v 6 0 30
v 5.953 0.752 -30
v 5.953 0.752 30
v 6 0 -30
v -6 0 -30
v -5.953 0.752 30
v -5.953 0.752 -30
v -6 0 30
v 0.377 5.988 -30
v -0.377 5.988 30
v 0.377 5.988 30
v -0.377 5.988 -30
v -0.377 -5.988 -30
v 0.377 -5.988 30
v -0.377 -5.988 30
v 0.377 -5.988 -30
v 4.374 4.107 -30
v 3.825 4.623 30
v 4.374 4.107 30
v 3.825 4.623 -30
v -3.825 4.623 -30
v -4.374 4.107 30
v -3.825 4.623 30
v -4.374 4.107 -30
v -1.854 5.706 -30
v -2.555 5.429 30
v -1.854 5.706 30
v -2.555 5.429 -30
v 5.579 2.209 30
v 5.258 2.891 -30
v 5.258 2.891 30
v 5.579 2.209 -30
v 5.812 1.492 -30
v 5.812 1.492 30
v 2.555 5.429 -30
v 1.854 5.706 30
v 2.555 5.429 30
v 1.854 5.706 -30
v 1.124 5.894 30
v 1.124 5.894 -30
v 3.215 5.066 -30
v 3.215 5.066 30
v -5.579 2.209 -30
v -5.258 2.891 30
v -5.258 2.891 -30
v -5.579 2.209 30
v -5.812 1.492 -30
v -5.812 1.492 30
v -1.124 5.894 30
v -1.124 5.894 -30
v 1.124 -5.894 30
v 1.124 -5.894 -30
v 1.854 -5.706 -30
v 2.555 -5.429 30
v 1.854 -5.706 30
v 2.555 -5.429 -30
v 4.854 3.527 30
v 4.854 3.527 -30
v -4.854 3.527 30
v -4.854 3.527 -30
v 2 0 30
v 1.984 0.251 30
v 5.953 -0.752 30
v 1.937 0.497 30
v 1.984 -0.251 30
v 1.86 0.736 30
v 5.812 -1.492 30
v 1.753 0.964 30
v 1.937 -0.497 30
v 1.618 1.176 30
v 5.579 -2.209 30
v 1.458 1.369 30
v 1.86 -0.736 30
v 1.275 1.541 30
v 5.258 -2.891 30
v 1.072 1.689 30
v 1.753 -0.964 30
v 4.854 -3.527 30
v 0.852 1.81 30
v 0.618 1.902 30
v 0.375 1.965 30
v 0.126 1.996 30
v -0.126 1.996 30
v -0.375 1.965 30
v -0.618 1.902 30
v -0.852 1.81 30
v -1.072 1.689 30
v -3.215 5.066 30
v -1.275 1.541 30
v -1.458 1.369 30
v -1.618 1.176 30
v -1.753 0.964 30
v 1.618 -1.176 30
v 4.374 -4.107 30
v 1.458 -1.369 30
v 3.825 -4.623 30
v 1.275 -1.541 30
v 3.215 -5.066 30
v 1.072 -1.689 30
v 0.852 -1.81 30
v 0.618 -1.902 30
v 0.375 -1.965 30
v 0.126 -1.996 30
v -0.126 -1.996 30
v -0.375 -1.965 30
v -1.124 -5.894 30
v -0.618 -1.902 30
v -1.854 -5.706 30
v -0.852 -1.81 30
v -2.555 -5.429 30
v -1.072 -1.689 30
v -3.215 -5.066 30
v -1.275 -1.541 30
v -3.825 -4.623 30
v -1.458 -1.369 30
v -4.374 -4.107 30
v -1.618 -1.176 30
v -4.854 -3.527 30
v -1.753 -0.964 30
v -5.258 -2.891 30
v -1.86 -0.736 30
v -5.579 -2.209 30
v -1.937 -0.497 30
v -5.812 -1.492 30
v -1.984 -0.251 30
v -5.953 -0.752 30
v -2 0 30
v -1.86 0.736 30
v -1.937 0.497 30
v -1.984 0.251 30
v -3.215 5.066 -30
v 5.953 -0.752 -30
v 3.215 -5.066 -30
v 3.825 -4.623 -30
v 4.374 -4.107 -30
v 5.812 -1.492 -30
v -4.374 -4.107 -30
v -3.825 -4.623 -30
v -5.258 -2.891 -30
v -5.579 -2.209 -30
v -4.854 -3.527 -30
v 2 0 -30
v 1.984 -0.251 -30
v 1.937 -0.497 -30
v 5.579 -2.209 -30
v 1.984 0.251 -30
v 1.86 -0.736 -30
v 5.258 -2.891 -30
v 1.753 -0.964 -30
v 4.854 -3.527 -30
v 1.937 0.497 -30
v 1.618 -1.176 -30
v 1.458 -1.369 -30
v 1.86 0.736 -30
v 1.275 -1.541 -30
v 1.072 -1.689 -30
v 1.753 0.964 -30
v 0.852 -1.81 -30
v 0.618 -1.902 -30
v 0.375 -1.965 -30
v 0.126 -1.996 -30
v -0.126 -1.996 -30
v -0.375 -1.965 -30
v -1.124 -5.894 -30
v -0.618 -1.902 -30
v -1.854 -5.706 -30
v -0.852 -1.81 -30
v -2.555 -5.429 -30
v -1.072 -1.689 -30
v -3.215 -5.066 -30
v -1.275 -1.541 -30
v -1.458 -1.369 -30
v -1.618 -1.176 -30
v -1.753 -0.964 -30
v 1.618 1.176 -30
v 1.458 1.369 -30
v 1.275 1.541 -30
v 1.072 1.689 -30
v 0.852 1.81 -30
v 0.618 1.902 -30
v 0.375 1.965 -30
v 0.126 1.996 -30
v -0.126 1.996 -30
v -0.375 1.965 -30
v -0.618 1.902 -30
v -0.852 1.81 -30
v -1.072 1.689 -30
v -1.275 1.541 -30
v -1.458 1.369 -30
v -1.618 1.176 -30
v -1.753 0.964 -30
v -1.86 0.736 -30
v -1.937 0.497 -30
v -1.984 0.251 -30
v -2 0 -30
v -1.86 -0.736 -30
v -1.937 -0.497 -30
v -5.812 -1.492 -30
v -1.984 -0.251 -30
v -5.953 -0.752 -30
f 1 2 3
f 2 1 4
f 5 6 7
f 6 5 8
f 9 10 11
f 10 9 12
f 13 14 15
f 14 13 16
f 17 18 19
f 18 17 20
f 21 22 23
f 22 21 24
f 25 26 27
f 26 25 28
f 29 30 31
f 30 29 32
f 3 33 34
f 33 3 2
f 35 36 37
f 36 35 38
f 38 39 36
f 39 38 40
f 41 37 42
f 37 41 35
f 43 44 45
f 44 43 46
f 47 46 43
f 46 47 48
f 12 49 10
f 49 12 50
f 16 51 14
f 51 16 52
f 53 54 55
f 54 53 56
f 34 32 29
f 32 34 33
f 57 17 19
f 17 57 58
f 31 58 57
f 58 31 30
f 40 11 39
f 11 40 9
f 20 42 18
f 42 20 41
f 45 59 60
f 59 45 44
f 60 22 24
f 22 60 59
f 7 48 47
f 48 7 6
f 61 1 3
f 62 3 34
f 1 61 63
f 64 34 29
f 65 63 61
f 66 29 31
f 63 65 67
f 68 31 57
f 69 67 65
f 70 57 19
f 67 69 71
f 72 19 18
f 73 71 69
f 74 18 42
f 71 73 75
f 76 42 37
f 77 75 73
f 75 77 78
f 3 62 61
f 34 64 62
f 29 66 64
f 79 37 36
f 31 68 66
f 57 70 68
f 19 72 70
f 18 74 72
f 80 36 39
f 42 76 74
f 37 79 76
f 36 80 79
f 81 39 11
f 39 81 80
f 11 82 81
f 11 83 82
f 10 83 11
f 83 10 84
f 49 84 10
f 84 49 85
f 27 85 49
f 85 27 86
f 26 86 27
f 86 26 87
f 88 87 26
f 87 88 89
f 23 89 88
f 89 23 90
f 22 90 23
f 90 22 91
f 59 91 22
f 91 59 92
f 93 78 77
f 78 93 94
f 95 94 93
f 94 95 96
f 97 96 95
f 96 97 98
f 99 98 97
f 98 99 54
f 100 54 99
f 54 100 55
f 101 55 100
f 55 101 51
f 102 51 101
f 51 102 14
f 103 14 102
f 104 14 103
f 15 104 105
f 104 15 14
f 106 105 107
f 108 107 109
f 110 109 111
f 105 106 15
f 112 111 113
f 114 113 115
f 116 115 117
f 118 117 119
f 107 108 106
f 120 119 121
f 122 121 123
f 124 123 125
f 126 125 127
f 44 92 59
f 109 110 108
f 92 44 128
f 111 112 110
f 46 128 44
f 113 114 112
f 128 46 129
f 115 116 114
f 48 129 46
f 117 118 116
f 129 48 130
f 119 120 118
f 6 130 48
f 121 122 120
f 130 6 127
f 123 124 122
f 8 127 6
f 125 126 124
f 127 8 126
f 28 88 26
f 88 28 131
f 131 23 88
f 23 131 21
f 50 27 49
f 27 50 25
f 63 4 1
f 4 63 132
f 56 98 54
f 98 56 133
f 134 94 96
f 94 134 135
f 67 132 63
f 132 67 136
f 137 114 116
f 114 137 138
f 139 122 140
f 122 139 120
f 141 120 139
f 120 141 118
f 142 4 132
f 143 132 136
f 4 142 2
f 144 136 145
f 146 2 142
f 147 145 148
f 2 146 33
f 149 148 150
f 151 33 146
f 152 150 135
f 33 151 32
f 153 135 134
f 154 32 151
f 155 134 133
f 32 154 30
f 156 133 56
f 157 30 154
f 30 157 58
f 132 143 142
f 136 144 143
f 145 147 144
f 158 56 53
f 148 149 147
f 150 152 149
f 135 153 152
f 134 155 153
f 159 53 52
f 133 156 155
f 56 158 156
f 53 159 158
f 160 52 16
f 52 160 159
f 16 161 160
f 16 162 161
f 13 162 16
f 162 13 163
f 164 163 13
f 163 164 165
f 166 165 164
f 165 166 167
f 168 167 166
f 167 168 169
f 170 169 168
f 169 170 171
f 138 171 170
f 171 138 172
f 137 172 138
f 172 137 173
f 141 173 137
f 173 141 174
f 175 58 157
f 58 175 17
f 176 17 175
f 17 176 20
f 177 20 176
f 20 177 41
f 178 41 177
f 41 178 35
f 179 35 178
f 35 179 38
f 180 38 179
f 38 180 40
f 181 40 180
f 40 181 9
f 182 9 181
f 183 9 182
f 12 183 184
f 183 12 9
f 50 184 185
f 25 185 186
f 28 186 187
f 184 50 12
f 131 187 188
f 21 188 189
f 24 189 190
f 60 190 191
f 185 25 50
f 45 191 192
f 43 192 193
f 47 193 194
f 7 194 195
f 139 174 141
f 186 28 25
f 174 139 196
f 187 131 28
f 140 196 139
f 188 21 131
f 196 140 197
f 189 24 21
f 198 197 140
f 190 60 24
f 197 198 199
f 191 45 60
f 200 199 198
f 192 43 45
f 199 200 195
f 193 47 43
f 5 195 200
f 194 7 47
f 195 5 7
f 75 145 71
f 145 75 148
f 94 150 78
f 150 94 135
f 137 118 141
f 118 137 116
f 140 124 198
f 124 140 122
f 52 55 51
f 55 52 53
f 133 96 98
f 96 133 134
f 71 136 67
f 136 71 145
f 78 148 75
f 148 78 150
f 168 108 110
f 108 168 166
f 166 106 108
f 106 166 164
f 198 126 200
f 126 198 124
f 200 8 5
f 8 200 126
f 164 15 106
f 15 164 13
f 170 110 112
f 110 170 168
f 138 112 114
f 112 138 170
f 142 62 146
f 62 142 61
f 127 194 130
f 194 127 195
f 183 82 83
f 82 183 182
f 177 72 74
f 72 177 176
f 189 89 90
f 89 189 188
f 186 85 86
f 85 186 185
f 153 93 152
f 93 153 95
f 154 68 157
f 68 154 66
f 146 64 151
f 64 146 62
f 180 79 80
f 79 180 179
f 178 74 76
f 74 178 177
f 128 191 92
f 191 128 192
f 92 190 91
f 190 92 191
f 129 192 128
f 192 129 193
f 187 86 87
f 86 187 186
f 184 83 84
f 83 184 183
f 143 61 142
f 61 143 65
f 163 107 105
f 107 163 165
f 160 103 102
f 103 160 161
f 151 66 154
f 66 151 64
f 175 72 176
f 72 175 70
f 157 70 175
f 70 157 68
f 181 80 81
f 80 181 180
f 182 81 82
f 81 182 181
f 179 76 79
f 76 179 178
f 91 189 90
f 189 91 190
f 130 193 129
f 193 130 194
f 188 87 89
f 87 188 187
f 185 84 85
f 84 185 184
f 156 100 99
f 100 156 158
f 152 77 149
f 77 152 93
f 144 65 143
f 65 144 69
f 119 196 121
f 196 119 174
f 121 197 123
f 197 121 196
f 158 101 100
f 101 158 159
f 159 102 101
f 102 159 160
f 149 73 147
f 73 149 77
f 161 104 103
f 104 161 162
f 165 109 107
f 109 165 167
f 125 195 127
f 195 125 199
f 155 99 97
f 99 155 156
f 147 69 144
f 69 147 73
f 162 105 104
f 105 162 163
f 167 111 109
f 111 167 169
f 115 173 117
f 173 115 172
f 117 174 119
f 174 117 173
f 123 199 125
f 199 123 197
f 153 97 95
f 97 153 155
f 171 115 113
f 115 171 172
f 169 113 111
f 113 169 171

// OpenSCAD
$fn = 50;


difference() {
	union() {
		translate(v = [0, 0, -30.0000000000]) {
			cylinder(h = 60, r = 6.0000000000);
		}
	}
	union() {
		translate(v = [0, 0, -100.0000000000]) {
			cylinder(h = 200, r = 2);
		}
	}
}
